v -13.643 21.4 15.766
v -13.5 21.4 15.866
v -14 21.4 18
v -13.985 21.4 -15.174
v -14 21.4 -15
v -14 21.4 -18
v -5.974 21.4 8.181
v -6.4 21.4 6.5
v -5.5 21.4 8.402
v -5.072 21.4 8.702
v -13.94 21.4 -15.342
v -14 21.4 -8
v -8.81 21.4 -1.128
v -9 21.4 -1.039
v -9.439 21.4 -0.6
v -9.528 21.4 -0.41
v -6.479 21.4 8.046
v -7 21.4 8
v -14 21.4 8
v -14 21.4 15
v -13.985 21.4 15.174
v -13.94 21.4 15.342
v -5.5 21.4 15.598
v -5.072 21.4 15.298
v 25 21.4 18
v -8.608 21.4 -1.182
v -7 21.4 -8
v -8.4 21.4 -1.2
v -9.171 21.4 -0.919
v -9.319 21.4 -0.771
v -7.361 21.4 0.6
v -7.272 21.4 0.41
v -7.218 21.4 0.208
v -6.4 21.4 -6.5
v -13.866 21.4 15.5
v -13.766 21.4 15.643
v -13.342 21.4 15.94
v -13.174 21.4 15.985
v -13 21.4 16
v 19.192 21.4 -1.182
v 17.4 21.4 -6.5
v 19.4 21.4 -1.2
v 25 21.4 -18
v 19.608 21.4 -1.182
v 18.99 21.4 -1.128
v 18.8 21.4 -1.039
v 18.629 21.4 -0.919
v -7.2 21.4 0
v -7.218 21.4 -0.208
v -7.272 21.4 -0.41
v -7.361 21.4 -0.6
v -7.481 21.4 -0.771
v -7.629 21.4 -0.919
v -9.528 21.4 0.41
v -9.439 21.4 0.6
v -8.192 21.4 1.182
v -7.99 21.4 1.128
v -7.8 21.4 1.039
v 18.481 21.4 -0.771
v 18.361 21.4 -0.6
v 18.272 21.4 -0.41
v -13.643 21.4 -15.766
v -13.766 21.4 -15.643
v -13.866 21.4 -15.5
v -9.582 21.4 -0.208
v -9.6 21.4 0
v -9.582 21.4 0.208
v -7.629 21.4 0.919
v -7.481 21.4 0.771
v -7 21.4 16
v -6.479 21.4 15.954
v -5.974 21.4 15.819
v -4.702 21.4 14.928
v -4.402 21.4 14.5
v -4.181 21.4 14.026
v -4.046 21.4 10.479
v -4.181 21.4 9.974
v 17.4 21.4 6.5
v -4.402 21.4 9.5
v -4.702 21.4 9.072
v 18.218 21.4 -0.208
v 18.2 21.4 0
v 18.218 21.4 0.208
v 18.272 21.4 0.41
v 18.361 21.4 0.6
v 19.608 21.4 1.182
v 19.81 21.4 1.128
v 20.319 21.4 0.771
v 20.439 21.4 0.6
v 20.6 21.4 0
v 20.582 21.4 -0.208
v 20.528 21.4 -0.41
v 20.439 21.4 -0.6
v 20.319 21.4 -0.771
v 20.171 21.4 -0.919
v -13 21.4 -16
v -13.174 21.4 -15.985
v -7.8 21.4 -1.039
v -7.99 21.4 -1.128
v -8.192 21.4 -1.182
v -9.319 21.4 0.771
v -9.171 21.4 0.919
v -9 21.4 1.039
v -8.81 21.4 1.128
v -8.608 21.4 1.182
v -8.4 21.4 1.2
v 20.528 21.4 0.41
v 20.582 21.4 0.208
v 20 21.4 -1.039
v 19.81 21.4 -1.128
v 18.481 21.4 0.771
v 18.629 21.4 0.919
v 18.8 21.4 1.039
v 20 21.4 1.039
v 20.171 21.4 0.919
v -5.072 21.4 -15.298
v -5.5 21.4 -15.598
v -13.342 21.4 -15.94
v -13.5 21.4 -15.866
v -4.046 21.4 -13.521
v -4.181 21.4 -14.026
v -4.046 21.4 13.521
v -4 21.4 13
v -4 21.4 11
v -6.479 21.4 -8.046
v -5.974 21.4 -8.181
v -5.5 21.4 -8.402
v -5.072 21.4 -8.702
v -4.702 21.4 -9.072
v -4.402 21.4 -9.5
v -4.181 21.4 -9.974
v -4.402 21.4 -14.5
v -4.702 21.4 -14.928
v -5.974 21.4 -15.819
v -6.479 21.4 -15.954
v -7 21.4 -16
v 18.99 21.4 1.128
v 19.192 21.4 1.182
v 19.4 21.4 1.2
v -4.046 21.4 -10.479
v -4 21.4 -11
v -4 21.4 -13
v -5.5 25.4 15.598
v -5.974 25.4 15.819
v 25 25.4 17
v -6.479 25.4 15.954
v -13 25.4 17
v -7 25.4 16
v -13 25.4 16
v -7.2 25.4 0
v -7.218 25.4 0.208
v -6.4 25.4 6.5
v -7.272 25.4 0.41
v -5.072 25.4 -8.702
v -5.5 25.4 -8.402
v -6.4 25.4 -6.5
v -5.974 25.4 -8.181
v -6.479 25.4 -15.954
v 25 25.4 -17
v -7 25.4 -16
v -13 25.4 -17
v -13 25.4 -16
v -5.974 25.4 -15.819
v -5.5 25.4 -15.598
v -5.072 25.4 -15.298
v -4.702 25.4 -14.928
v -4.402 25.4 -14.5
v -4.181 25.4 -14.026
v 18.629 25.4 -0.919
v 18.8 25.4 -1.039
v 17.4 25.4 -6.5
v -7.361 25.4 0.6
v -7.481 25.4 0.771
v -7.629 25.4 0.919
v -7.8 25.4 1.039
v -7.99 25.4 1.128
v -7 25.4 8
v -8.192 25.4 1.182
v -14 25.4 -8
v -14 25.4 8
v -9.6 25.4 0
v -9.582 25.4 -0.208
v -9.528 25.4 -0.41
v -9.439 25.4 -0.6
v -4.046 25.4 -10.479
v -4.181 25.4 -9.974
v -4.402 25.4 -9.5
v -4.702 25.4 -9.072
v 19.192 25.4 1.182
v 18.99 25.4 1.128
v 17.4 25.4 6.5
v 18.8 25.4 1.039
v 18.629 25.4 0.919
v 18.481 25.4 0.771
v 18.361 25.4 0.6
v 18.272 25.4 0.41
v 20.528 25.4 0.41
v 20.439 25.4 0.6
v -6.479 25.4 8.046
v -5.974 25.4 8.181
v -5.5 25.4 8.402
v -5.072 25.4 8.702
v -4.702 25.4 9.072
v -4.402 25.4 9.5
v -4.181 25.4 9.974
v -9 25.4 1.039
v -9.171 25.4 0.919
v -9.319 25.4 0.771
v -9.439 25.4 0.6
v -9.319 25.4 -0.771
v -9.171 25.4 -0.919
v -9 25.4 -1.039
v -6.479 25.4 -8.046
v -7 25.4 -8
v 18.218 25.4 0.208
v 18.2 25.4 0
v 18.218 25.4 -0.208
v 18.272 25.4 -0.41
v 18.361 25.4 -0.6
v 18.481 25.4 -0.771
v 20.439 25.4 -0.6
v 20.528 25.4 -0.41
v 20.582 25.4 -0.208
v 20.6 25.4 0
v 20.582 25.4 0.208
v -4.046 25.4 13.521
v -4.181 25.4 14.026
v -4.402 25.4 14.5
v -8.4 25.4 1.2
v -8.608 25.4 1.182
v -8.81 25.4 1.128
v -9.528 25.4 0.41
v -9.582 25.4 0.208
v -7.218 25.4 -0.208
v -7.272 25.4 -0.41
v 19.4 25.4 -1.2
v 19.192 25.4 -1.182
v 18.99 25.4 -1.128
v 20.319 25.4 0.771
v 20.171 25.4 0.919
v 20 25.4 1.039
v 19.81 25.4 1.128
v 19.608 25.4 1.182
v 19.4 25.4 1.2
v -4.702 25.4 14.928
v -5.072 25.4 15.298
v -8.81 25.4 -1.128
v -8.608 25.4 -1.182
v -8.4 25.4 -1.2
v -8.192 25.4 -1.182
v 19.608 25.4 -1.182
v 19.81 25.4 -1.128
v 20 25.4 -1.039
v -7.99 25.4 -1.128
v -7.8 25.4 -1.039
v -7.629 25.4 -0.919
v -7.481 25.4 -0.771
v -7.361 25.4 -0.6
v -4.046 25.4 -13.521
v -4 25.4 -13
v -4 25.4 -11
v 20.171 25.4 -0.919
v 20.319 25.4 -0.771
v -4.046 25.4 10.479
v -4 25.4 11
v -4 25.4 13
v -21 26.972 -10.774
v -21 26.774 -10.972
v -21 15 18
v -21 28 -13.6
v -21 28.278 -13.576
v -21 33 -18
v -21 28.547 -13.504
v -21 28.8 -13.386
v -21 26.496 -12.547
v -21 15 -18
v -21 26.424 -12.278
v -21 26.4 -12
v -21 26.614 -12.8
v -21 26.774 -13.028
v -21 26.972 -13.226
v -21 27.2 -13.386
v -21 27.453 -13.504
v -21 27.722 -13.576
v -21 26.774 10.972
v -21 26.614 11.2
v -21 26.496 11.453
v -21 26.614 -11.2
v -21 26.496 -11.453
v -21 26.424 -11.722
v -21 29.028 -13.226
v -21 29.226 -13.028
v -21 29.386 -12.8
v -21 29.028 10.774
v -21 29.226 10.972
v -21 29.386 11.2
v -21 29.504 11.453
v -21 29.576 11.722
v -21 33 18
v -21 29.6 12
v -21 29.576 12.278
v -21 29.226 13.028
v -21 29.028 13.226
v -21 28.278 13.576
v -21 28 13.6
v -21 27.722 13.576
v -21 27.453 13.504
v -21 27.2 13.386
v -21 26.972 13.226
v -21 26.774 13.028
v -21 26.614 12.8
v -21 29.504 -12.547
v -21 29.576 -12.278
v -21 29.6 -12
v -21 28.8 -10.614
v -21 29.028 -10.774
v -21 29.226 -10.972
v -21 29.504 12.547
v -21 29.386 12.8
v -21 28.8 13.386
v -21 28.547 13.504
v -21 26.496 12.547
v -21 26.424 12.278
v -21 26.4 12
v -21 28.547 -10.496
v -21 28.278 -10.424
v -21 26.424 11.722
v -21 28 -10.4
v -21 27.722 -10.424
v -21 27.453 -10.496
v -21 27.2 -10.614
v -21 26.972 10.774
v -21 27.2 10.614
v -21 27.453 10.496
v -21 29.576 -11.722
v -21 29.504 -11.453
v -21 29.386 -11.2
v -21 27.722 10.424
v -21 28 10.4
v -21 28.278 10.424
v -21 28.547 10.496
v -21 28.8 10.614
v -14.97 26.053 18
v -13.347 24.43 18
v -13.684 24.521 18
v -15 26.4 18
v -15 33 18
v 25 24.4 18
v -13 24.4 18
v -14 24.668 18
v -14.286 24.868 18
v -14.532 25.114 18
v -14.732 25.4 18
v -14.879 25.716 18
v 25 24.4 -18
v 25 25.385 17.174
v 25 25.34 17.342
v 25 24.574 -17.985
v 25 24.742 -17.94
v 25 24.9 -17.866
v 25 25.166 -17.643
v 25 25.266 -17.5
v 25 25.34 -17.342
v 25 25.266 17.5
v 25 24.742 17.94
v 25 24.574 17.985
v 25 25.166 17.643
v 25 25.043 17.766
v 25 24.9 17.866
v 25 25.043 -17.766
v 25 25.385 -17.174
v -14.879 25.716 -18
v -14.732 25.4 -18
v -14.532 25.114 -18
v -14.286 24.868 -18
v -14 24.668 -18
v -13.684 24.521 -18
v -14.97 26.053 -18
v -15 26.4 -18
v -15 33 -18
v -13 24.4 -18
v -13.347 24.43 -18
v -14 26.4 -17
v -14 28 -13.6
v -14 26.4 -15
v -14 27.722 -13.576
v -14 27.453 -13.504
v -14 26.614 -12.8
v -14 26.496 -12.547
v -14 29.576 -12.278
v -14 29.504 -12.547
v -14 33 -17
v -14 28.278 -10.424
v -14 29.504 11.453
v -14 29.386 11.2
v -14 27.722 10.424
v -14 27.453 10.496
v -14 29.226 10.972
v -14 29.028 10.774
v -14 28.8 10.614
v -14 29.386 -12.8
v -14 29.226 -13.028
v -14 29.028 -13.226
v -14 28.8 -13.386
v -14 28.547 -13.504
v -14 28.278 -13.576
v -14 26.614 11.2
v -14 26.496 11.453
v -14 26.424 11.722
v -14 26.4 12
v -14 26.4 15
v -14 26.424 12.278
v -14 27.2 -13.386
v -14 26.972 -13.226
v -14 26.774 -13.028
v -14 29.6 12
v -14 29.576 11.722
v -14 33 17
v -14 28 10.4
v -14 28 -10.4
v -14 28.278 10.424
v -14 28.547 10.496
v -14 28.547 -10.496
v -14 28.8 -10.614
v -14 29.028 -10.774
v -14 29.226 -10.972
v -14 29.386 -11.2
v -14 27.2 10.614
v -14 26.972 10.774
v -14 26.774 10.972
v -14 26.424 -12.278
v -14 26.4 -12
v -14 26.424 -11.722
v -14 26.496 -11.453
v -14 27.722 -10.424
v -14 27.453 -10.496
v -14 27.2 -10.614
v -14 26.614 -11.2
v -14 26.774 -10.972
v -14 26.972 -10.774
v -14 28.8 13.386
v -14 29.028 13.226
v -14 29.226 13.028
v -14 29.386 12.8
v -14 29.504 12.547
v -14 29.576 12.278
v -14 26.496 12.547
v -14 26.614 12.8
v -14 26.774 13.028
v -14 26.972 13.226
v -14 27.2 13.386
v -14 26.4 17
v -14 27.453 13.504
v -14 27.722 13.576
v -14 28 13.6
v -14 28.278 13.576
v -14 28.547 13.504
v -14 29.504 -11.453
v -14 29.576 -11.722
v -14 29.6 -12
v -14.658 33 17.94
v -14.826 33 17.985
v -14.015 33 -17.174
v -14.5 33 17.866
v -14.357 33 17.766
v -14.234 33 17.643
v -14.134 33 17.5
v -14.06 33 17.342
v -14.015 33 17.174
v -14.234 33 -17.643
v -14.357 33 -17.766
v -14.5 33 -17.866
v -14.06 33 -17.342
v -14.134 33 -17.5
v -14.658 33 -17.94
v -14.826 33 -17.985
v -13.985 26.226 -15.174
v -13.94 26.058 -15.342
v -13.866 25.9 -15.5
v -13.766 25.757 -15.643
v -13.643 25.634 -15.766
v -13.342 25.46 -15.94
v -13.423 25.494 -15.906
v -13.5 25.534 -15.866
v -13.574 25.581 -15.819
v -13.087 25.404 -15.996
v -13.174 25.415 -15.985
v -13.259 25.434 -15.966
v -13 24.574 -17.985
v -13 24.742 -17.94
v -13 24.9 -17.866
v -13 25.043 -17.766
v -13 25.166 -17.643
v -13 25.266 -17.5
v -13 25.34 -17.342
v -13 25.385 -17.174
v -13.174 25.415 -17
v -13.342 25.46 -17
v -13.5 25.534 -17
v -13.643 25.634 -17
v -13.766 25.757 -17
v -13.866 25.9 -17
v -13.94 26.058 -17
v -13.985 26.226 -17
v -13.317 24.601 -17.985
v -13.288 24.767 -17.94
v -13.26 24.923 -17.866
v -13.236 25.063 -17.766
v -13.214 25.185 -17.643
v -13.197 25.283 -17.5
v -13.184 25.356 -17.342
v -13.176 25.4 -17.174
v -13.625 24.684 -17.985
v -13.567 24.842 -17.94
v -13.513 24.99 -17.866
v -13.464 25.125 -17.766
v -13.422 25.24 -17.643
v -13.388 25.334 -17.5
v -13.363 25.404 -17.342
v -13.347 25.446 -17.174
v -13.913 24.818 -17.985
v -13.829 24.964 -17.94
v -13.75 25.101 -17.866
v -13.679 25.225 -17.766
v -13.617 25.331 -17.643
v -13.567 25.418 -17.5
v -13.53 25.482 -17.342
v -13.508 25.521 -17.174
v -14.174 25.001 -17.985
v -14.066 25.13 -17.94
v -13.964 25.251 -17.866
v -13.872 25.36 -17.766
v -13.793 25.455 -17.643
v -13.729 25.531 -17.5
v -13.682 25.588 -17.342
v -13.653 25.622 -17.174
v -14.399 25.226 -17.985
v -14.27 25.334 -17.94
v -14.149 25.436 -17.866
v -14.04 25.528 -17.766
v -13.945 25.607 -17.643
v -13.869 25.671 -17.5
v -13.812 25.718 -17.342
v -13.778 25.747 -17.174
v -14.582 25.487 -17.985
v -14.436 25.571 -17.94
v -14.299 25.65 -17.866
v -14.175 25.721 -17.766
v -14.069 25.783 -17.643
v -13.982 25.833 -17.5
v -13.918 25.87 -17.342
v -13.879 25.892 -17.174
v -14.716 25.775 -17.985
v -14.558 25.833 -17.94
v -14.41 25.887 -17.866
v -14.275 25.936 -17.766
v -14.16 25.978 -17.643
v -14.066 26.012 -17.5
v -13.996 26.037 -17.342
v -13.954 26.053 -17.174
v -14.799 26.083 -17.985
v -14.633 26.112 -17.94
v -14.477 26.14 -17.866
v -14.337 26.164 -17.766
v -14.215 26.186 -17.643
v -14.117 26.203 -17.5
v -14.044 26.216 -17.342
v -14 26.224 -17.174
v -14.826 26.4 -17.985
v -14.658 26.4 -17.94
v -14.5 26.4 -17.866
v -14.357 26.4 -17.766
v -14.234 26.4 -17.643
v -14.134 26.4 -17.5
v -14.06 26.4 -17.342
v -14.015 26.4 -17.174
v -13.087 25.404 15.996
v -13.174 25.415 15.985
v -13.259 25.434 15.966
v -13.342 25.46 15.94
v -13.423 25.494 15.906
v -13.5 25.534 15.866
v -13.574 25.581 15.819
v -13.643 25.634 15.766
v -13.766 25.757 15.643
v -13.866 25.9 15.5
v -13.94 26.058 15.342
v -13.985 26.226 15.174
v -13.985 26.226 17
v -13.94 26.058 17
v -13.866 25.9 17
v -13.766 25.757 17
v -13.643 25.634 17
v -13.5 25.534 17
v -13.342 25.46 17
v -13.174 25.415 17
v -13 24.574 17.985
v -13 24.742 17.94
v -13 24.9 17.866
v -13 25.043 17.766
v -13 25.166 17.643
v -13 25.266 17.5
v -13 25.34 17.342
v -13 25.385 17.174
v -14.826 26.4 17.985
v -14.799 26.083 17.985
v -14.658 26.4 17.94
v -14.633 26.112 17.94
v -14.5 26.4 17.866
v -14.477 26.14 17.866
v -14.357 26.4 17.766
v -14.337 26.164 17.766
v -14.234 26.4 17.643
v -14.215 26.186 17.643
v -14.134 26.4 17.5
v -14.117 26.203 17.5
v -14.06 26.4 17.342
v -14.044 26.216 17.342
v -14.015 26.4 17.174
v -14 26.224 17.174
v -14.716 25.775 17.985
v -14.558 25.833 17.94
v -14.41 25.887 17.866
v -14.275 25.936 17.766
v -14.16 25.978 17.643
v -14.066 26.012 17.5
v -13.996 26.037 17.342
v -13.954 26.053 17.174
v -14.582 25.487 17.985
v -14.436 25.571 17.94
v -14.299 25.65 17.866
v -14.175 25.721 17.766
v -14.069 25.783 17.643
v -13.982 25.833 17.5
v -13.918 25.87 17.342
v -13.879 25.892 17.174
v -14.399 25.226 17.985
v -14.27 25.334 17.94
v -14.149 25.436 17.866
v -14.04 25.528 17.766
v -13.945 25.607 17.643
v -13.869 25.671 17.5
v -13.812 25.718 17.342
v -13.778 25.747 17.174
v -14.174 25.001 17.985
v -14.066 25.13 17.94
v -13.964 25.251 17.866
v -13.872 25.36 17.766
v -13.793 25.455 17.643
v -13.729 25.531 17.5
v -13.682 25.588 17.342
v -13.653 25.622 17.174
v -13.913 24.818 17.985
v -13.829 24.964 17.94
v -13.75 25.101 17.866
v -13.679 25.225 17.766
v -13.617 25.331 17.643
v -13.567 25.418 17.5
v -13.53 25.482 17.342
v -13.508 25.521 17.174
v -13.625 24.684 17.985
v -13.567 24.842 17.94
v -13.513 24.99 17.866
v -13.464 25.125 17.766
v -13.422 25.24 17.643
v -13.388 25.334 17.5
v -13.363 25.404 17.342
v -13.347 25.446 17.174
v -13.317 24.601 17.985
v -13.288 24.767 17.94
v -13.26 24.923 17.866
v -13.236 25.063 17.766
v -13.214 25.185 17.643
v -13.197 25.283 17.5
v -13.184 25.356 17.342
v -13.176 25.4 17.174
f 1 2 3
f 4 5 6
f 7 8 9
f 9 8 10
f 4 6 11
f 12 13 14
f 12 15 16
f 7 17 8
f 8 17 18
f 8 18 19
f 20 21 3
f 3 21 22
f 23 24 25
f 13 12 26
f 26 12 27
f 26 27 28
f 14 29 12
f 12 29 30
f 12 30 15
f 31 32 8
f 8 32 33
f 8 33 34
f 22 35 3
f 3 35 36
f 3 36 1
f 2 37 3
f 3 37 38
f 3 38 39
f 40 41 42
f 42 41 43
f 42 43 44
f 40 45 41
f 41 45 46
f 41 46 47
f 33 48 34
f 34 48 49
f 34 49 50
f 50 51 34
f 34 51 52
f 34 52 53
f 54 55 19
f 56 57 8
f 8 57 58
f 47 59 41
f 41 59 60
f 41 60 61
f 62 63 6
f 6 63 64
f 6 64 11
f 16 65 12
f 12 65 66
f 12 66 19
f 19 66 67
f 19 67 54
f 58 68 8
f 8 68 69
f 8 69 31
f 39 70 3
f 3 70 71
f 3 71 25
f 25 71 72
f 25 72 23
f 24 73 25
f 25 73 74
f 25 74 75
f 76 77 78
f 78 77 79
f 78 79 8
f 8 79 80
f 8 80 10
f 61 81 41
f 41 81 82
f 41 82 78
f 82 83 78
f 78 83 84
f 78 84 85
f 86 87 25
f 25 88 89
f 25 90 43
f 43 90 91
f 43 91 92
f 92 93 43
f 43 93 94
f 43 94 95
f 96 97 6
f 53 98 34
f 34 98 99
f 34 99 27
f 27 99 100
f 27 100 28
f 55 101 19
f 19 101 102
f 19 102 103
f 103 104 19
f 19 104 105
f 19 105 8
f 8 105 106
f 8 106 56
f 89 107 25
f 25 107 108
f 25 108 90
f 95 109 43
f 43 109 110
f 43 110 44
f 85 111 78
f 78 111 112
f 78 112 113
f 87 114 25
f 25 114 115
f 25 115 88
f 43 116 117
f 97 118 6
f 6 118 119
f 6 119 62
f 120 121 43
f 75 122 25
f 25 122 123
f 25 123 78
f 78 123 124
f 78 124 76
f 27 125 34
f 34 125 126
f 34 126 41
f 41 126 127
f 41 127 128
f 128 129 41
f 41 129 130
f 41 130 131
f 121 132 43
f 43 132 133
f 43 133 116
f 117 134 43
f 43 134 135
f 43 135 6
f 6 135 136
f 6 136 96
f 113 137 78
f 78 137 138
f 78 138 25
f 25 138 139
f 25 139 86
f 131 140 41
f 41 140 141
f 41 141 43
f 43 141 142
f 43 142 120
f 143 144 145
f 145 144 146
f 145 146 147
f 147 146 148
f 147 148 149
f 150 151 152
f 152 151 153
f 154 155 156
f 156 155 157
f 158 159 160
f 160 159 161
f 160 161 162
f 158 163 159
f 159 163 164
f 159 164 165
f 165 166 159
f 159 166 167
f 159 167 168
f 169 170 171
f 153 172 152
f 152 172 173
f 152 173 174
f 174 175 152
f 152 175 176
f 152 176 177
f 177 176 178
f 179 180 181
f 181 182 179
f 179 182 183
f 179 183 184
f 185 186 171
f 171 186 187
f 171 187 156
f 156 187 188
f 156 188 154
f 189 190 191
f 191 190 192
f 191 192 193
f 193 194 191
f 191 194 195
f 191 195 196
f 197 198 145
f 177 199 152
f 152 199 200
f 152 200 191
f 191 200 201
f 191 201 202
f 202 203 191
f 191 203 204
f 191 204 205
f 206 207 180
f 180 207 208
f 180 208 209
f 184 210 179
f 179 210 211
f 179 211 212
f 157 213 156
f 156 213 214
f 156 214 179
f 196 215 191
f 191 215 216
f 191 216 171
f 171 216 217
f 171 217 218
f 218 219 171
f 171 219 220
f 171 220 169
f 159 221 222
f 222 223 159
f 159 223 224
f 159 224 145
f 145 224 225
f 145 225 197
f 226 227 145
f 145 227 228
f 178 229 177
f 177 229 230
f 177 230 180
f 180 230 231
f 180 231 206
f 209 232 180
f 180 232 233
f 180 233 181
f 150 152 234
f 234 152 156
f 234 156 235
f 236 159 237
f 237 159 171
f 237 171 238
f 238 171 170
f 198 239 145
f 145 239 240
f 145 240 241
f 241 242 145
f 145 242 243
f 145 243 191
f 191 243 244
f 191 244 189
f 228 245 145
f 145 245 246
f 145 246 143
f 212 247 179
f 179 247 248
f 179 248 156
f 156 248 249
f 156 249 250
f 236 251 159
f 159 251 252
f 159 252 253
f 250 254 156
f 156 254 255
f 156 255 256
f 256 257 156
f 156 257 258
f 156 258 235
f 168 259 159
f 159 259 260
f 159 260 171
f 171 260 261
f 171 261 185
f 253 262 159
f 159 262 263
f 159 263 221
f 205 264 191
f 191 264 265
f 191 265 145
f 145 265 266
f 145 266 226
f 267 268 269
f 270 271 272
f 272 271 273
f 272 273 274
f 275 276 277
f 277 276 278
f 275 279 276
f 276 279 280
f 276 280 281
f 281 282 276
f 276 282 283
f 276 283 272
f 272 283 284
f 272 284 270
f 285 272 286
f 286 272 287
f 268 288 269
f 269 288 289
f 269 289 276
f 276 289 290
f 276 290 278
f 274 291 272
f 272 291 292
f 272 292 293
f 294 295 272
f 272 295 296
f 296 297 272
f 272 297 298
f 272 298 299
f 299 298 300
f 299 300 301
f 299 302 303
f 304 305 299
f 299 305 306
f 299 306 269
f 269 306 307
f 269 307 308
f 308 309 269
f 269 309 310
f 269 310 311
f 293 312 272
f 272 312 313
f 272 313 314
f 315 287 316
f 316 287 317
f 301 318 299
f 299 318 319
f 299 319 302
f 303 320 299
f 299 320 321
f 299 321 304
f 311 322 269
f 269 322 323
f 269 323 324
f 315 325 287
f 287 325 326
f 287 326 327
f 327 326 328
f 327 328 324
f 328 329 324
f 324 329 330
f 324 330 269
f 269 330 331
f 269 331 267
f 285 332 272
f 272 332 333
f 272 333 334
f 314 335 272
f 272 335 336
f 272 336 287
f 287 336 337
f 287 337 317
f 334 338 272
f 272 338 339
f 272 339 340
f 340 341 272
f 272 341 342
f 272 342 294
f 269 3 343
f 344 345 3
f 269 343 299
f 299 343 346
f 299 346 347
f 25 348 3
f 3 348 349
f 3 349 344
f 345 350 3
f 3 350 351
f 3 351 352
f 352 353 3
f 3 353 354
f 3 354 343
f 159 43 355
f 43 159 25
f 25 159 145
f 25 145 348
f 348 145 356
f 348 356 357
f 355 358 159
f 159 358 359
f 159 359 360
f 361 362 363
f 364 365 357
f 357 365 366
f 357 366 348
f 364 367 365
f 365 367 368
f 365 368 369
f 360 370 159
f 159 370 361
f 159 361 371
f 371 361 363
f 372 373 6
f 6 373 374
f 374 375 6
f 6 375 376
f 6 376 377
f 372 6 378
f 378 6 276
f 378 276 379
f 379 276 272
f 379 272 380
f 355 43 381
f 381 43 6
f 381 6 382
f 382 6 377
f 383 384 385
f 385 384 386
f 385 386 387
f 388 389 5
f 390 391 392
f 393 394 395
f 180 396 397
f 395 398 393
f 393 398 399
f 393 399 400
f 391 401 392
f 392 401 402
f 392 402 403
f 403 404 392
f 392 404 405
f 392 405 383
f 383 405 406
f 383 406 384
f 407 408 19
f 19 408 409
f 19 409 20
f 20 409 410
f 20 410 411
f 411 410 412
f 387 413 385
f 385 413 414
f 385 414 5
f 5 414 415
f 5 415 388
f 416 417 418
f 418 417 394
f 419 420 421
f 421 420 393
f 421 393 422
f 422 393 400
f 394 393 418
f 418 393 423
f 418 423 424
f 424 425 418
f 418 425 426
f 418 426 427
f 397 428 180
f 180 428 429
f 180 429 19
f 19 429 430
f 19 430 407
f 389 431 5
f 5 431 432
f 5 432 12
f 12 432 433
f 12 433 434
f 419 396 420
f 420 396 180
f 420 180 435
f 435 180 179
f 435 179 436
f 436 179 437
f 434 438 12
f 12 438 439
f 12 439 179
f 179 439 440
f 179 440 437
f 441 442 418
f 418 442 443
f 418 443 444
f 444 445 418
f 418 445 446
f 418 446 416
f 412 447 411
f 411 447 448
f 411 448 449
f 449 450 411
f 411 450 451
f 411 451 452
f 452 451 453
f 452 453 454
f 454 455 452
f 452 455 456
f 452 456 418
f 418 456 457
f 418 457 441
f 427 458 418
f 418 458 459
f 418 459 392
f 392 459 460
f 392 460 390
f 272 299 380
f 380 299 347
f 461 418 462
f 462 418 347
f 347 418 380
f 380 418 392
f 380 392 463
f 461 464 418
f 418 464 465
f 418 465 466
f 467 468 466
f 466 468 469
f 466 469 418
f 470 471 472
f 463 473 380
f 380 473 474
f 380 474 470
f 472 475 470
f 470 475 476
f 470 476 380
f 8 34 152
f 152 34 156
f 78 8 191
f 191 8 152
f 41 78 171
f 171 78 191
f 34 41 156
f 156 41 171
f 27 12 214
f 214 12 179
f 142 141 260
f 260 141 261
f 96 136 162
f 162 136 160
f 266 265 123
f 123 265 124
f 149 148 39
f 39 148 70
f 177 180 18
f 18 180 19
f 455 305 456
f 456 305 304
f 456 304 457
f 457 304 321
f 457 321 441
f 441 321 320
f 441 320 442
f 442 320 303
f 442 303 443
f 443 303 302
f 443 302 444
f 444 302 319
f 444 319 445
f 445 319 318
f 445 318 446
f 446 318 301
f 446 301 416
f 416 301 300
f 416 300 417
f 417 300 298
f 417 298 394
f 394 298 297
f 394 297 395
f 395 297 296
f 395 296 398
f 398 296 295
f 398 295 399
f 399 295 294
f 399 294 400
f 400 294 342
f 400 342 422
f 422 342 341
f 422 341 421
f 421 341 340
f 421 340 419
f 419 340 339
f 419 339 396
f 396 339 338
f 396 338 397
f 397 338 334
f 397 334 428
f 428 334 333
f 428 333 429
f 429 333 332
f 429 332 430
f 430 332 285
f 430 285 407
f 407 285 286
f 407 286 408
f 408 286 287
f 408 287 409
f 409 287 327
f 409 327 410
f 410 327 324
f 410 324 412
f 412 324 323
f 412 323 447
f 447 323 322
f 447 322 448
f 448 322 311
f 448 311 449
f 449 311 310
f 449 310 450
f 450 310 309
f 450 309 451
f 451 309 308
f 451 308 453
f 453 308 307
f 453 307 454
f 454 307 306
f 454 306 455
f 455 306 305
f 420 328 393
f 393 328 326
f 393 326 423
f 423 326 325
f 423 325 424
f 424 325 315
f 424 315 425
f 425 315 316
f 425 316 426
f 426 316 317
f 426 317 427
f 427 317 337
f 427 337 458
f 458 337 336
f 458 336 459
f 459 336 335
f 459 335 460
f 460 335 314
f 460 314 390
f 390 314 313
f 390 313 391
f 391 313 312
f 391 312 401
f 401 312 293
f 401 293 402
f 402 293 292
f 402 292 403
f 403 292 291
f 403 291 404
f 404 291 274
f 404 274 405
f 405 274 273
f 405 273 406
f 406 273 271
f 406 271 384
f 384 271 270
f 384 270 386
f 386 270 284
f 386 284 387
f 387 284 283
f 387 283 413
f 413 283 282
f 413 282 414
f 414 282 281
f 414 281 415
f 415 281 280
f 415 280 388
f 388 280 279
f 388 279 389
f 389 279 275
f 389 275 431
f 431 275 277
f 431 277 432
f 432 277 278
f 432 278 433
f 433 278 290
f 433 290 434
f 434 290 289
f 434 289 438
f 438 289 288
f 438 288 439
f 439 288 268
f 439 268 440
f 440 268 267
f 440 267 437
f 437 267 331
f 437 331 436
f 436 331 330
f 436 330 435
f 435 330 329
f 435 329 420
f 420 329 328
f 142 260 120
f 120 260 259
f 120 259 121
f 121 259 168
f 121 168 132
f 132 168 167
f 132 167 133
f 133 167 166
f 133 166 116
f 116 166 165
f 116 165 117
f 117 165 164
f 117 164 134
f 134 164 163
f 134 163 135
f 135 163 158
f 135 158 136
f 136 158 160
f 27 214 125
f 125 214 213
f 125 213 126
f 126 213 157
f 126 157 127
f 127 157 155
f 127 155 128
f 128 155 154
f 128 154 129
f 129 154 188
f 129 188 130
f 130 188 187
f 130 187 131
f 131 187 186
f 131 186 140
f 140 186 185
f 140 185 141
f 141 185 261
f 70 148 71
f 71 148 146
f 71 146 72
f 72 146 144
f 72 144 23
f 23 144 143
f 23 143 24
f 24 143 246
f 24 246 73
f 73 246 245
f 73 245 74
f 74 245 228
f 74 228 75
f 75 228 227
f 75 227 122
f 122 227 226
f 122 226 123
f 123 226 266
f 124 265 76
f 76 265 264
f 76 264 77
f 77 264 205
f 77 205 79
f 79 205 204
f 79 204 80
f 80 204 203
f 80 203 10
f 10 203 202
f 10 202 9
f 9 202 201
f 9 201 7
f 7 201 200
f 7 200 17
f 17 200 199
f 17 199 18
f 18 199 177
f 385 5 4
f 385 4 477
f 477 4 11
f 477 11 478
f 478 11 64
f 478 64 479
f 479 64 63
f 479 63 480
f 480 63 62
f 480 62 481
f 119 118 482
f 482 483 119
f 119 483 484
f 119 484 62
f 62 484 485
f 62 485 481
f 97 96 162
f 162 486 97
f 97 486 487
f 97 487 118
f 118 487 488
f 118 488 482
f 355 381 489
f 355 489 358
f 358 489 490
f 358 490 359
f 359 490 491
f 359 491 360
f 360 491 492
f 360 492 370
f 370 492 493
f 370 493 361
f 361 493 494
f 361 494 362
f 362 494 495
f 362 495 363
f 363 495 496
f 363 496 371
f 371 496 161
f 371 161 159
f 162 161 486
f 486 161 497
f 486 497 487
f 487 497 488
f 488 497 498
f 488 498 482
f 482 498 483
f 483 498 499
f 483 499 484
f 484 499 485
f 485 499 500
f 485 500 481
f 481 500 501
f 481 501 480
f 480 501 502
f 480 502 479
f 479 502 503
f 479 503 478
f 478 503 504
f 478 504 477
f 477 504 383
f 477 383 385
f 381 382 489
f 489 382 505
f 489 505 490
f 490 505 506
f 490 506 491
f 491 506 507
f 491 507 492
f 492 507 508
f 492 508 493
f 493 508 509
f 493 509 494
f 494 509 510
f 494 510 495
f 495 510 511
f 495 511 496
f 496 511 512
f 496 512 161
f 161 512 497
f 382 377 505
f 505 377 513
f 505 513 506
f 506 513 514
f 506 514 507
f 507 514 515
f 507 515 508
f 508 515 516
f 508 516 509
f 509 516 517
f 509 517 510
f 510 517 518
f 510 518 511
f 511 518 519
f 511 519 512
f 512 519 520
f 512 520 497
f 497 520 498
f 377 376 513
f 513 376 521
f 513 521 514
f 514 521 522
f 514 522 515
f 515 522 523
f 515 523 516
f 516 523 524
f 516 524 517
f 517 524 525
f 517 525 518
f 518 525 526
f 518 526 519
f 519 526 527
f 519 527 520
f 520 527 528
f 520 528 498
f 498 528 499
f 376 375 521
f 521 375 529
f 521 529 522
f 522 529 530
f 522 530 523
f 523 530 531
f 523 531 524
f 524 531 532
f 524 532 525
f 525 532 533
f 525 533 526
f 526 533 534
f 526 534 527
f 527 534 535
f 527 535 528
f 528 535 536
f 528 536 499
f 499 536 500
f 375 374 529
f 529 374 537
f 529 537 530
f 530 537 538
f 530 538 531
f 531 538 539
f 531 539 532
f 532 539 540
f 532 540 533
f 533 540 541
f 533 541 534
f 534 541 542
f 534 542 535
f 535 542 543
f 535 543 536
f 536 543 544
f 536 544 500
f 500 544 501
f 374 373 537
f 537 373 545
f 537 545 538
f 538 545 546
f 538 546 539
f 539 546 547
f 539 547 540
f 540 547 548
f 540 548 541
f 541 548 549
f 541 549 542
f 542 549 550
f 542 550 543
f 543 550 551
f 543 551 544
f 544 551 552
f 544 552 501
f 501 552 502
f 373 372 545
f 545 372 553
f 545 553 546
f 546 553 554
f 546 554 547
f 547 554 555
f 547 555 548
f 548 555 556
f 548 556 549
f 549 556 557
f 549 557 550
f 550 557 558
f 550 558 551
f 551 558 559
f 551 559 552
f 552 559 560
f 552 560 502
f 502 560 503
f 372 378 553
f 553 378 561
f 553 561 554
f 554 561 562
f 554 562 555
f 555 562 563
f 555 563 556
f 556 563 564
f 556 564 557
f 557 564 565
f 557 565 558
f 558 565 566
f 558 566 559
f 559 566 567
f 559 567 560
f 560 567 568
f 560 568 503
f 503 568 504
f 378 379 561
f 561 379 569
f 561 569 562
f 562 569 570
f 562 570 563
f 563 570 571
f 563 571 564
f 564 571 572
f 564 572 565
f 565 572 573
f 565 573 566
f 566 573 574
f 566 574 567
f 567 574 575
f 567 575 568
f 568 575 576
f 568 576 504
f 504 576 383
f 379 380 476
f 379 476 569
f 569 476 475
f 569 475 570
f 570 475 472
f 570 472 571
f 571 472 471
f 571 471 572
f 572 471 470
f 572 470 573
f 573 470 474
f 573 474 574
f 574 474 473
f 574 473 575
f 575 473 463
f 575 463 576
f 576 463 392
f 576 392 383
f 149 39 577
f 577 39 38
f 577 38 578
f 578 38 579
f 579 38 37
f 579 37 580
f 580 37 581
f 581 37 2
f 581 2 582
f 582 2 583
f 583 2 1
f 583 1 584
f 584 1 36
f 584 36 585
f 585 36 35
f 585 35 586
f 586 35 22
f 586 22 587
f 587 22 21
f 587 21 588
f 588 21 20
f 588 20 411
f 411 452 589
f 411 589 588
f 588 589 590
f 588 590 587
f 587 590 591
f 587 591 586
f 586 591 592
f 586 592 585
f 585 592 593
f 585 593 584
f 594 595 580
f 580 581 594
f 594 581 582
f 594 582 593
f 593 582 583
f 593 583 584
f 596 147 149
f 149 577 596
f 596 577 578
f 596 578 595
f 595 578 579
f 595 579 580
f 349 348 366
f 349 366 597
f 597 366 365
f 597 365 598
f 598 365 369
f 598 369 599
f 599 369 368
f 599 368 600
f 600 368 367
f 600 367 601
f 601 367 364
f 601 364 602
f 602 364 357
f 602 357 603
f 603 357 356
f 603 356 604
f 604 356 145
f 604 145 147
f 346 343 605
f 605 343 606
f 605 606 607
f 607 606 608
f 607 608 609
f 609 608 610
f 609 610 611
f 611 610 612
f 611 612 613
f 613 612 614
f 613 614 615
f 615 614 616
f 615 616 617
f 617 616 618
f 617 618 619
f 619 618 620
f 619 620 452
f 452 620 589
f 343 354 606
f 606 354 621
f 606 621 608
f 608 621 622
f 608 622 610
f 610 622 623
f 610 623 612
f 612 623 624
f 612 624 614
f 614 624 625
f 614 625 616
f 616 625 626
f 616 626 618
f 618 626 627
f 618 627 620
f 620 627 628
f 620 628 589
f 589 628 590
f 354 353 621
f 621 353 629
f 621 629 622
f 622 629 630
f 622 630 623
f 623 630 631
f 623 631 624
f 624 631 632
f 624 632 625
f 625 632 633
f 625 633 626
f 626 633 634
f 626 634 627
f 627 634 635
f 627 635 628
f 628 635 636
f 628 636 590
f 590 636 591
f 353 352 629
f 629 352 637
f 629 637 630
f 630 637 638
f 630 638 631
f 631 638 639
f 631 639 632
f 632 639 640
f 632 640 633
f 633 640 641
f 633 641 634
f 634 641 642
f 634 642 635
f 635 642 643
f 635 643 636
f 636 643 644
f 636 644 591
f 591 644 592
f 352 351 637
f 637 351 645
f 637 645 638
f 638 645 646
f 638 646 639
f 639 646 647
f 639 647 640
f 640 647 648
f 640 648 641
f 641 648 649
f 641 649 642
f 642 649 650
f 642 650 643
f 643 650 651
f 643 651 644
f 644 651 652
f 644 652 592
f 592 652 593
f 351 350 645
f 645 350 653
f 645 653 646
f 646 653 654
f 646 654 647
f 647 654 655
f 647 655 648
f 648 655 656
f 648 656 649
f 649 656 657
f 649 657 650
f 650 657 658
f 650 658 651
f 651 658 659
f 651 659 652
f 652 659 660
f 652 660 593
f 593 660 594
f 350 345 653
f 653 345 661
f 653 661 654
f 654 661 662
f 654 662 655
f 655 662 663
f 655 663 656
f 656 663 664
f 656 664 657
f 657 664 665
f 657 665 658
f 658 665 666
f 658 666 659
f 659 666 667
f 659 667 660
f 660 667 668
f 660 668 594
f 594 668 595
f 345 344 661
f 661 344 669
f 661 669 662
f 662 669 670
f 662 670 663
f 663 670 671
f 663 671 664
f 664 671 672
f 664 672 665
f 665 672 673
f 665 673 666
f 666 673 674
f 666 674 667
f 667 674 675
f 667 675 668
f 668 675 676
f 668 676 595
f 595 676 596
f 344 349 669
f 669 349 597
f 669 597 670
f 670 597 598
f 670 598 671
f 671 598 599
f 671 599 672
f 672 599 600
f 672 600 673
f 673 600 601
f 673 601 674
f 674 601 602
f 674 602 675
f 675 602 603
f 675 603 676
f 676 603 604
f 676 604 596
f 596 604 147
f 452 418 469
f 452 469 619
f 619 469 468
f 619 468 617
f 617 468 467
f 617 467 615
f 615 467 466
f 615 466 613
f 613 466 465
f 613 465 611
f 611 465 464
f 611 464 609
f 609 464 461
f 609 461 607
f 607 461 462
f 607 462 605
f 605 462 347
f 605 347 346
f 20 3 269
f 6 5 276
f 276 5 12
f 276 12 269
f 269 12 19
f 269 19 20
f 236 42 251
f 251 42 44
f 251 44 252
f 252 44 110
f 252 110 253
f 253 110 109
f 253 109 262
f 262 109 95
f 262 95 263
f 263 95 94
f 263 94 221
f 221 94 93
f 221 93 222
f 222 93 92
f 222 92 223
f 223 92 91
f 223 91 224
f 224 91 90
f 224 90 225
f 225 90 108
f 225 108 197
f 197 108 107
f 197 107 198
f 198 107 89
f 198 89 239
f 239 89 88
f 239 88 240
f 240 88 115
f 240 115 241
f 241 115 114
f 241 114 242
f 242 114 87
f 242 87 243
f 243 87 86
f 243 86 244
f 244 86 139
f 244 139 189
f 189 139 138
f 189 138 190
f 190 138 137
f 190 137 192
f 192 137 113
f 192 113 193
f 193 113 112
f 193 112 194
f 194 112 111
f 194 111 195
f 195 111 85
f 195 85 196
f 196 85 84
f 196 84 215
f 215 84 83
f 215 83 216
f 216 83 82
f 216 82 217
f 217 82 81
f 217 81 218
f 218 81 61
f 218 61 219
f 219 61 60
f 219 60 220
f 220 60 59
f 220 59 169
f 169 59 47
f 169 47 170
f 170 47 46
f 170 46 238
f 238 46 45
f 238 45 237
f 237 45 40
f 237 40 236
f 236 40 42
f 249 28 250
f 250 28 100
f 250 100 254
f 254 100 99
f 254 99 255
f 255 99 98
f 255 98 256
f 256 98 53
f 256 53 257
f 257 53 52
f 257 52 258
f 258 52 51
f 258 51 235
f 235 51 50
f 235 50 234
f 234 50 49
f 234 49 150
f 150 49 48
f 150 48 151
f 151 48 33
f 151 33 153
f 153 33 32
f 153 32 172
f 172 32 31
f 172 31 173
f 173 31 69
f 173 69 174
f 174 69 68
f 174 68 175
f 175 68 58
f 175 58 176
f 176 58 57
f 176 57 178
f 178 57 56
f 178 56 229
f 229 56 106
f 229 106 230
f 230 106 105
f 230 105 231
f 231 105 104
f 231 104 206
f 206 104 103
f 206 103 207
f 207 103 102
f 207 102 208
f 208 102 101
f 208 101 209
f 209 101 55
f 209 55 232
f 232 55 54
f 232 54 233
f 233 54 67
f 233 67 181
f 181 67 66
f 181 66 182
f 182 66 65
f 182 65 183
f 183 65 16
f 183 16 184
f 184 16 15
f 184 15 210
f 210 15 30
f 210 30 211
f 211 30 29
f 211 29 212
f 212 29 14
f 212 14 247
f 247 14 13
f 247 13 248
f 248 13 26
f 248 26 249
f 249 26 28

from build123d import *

# Parameters (mm, degrees)
SERVO_SHELF_START                 = 21.4
SERVO_SHELF_PROFILE_W             = 46
SERVO_SHELF_PROFILE_H             = 36
SERVO_SHELF_DEPTH                 = 4
REAR_CLAMPING_BLOCK_START         = -18
REAR_CLAMPING_BLOCK_PROFILE_W     = 7
REAR_CLAMPING_BLOCK_PROFILE_H     = 10
REAR_CLAMPING_BLOCK_DEPTH         = 36
SERVO_BODY_WINDOW_START           = 20.4
SERVO_BODY_WINDOW_PROFILE_W       = 23.8
SERVO_BODY_WINDOW_PROFILE_H       = 13
SERVO_BODY_WINDOW_DEPTH           = 25.744213361
LEFT_NUT_ACCESS_START             = 20
LEFT_NUT_ACCESS_PROFILE_W         = 10
LEFT_NUT_ACCESS_PROFILE_H         = 8
LEFT_NUT_ACCESS_DEPTH             = 26.144213361
RIGHT_NUT_ACCESS_START            = 20
RIGHT_NUT_ACCESS_PROFILE_W        = 10
RIGHT_NUT_ACCESS_PROFILE_H        = 8
RIGHT_NUT_ACCESS_DEPTH            = 26.144213361
REAR_CLAMPING_M3_HOLES_START      = -25
REAR_CLAMPING_M3_PROFILE_R        = 1.6
REAR_CLAMPING_M3_HOLES_DEPTH      = 11
FILLET1_R                         = 3
FILLET2_R                         = 1
BOSS_EXTRUDE1_START               = -36
BOSS_EXTRUDE1_DEPTH               = 36
OWNED_SG90_M2_EAR_HOLES_START     = 20.4
OWNED_SG90_M2_EAR_HOLES_PROFILE_R = 1.2
OWNED_SG90_M2_EAR_HOLES_DEPTH     = 25.744213361


with BuildPart() as part:
    # Servo_shelf_profile → Servo_shelf (new body)
    with BuildSketch(Plane(origin=(0, 0, 0), x_dir=(1, 0, 0), z_dir=(0, 1, 0)).offset(SERVO_SHELF_START)):
        with Locations((2, 0)):
            Rectangle(SERVO_SHELF_PROFILE_W, SERVO_SHELF_PROFILE_H)
    extrude(amount=SERVO_SHELF_DEPTH)

    # Rear_clamping_block_profile → Rear_clamping_block (add)
    with BuildSketch(Plane.XY.offset(REAR_CLAMPING_BLOCK_START)):
        with Locations((-17.5, 28)):
            Rectangle(REAR_CLAMPING_BLOCK_PROFILE_W, REAR_CLAMPING_BLOCK_PROFILE_H)
    extrude(amount=REAR_CLAMPING_BLOCK_DEPTH)

    # Servo_body_window_profile → Servo_body_window (cut, through all)
    with BuildSketch(Plane(origin=(0, 0, 0), x_dir=(1, 0, 0), z_dir=(0, 1, 0)).offset(SERVO_BODY_WINDOW_START)):
        with Locations((5.5, 0)):
            Rectangle(SERVO_BODY_WINDOW_PROFILE_W, SERVO_BODY_WINDOW_PROFILE_H)
    extrude(amount=SERVO_BODY_WINDOW_DEPTH, mode=Mode.SUBTRACT)

    # Left_nut_access_profile → Left_nut_access (cut, through all)
    with BuildSketch(Plane(origin=(0, 0, 0), x_dir=(1, 0, 0), z_dir=(0, 1, 0)).offset(LEFT_NUT_ACCESS_START)):
        with Locations((-9, 12)):
            Rectangle(LEFT_NUT_ACCESS_PROFILE_W, LEFT_NUT_ACCESS_PROFILE_H)
    extrude(amount=LEFT_NUT_ACCESS_DEPTH, mode=Mode.SUBTRACT)

    # Right_nut_access_profile → Right_nut_access (cut, through all)
    with BuildSketch(Plane(origin=(0, 0, 0), x_dir=(1, 0, 0), z_dir=(0, 1, 0)).offset(RIGHT_NUT_ACCESS_START)):
        with Locations((-9, -12)):
            Rectangle(RIGHT_NUT_ACCESS_PROFILE_W, RIGHT_NUT_ACCESS_PROFILE_H)
    extrude(amount=RIGHT_NUT_ACCESS_DEPTH, mode=Mode.SUBTRACT)

    # Rear_clamping_M3_profile → Rear_clamping_M3_holes (cut)
    with BuildSketch(Plane(origin=(0, 0, 0), x_dir=(0, 0, -1), z_dir=(1, 0, 0)).offset(REAR_CLAMPING_M3_HOLES_START)):
        with Locations((12, 28)):
            Circle(REAR_CLAMPING_M3_PROFILE_R)
        with Locations((-12, 28)):
            Circle(REAR_CLAMPING_M3_PROFILE_R)
    extrude(amount=REAR_CLAMPING_M3_HOLES_DEPTH, mode=Mode.SUBTRACT)

    # Fillet1
    fillet1_edges = [part.edges().sort_by_distance(p)[0] for p in [
        (-4, 23.4, -8),
        (-4, 23.4, -16),
        (-4, 23.4, 16),
        (-4, 23.4, 8),
    ]]
    fillet(fillet1_edges, radius=FILLET1_R)

    # Fillet2
    fillet2_edges = [part.edges().sort_by_distance(p)[0] for p in [
        (5.5, 25.4, 18),
        (-14, 25.4, 17),
        (5.5, 25.4, -18),
        (-14, 29.2, 18),
        (-14, 29.2, -18),
        (-14, 25.4, -17),
        (-14, 23.4, -16),
        (-14, 23.4, 16),
    ]]
    fillet(fillet2_edges, radius=FILLET2_R)

    # Sketch1 → Boss-Extrude1 (add)
    with BuildSketch(Plane(origin=(0, 0, -18), x_dir=(-1, 0, 0), z_dir=(0, 0, -1)).offset(BOSS_EXTRUDE1_START)):
        Polygon((14, 21.4), (21, 15), (21, 21.4), align=None)
    extrude(amount=BOSS_EXTRUDE1_DEPTH)

    # Owned_SG90_M2_ear_holes_profile → Owned_SG90_M2_ear_holes (cut, through all)
    with BuildSketch(Plane(origin=(0, 0, 0), x_dir=(1, 0, 0), z_dir=(0, 1, 0)).offset(OWNED_SG90_M2_EAR_HOLES_START)):
        with Locations(Location((-8.4, 0, 0), (0, 0, 90))):
            Circle(OWNED_SG90_M2_EAR_HOLES_PROFILE_R)
        with Locations(Location((19.4, 0, 0), (0, 0, 90))):
            Circle(OWNED_SG90_M2_EAR_HOLES_PROFILE_R)
    extrude(amount=OWNED_SG90_M2_EAR_HOLES_DEPTH, mode=Mode.SUBTRACT)


solid = part.part
